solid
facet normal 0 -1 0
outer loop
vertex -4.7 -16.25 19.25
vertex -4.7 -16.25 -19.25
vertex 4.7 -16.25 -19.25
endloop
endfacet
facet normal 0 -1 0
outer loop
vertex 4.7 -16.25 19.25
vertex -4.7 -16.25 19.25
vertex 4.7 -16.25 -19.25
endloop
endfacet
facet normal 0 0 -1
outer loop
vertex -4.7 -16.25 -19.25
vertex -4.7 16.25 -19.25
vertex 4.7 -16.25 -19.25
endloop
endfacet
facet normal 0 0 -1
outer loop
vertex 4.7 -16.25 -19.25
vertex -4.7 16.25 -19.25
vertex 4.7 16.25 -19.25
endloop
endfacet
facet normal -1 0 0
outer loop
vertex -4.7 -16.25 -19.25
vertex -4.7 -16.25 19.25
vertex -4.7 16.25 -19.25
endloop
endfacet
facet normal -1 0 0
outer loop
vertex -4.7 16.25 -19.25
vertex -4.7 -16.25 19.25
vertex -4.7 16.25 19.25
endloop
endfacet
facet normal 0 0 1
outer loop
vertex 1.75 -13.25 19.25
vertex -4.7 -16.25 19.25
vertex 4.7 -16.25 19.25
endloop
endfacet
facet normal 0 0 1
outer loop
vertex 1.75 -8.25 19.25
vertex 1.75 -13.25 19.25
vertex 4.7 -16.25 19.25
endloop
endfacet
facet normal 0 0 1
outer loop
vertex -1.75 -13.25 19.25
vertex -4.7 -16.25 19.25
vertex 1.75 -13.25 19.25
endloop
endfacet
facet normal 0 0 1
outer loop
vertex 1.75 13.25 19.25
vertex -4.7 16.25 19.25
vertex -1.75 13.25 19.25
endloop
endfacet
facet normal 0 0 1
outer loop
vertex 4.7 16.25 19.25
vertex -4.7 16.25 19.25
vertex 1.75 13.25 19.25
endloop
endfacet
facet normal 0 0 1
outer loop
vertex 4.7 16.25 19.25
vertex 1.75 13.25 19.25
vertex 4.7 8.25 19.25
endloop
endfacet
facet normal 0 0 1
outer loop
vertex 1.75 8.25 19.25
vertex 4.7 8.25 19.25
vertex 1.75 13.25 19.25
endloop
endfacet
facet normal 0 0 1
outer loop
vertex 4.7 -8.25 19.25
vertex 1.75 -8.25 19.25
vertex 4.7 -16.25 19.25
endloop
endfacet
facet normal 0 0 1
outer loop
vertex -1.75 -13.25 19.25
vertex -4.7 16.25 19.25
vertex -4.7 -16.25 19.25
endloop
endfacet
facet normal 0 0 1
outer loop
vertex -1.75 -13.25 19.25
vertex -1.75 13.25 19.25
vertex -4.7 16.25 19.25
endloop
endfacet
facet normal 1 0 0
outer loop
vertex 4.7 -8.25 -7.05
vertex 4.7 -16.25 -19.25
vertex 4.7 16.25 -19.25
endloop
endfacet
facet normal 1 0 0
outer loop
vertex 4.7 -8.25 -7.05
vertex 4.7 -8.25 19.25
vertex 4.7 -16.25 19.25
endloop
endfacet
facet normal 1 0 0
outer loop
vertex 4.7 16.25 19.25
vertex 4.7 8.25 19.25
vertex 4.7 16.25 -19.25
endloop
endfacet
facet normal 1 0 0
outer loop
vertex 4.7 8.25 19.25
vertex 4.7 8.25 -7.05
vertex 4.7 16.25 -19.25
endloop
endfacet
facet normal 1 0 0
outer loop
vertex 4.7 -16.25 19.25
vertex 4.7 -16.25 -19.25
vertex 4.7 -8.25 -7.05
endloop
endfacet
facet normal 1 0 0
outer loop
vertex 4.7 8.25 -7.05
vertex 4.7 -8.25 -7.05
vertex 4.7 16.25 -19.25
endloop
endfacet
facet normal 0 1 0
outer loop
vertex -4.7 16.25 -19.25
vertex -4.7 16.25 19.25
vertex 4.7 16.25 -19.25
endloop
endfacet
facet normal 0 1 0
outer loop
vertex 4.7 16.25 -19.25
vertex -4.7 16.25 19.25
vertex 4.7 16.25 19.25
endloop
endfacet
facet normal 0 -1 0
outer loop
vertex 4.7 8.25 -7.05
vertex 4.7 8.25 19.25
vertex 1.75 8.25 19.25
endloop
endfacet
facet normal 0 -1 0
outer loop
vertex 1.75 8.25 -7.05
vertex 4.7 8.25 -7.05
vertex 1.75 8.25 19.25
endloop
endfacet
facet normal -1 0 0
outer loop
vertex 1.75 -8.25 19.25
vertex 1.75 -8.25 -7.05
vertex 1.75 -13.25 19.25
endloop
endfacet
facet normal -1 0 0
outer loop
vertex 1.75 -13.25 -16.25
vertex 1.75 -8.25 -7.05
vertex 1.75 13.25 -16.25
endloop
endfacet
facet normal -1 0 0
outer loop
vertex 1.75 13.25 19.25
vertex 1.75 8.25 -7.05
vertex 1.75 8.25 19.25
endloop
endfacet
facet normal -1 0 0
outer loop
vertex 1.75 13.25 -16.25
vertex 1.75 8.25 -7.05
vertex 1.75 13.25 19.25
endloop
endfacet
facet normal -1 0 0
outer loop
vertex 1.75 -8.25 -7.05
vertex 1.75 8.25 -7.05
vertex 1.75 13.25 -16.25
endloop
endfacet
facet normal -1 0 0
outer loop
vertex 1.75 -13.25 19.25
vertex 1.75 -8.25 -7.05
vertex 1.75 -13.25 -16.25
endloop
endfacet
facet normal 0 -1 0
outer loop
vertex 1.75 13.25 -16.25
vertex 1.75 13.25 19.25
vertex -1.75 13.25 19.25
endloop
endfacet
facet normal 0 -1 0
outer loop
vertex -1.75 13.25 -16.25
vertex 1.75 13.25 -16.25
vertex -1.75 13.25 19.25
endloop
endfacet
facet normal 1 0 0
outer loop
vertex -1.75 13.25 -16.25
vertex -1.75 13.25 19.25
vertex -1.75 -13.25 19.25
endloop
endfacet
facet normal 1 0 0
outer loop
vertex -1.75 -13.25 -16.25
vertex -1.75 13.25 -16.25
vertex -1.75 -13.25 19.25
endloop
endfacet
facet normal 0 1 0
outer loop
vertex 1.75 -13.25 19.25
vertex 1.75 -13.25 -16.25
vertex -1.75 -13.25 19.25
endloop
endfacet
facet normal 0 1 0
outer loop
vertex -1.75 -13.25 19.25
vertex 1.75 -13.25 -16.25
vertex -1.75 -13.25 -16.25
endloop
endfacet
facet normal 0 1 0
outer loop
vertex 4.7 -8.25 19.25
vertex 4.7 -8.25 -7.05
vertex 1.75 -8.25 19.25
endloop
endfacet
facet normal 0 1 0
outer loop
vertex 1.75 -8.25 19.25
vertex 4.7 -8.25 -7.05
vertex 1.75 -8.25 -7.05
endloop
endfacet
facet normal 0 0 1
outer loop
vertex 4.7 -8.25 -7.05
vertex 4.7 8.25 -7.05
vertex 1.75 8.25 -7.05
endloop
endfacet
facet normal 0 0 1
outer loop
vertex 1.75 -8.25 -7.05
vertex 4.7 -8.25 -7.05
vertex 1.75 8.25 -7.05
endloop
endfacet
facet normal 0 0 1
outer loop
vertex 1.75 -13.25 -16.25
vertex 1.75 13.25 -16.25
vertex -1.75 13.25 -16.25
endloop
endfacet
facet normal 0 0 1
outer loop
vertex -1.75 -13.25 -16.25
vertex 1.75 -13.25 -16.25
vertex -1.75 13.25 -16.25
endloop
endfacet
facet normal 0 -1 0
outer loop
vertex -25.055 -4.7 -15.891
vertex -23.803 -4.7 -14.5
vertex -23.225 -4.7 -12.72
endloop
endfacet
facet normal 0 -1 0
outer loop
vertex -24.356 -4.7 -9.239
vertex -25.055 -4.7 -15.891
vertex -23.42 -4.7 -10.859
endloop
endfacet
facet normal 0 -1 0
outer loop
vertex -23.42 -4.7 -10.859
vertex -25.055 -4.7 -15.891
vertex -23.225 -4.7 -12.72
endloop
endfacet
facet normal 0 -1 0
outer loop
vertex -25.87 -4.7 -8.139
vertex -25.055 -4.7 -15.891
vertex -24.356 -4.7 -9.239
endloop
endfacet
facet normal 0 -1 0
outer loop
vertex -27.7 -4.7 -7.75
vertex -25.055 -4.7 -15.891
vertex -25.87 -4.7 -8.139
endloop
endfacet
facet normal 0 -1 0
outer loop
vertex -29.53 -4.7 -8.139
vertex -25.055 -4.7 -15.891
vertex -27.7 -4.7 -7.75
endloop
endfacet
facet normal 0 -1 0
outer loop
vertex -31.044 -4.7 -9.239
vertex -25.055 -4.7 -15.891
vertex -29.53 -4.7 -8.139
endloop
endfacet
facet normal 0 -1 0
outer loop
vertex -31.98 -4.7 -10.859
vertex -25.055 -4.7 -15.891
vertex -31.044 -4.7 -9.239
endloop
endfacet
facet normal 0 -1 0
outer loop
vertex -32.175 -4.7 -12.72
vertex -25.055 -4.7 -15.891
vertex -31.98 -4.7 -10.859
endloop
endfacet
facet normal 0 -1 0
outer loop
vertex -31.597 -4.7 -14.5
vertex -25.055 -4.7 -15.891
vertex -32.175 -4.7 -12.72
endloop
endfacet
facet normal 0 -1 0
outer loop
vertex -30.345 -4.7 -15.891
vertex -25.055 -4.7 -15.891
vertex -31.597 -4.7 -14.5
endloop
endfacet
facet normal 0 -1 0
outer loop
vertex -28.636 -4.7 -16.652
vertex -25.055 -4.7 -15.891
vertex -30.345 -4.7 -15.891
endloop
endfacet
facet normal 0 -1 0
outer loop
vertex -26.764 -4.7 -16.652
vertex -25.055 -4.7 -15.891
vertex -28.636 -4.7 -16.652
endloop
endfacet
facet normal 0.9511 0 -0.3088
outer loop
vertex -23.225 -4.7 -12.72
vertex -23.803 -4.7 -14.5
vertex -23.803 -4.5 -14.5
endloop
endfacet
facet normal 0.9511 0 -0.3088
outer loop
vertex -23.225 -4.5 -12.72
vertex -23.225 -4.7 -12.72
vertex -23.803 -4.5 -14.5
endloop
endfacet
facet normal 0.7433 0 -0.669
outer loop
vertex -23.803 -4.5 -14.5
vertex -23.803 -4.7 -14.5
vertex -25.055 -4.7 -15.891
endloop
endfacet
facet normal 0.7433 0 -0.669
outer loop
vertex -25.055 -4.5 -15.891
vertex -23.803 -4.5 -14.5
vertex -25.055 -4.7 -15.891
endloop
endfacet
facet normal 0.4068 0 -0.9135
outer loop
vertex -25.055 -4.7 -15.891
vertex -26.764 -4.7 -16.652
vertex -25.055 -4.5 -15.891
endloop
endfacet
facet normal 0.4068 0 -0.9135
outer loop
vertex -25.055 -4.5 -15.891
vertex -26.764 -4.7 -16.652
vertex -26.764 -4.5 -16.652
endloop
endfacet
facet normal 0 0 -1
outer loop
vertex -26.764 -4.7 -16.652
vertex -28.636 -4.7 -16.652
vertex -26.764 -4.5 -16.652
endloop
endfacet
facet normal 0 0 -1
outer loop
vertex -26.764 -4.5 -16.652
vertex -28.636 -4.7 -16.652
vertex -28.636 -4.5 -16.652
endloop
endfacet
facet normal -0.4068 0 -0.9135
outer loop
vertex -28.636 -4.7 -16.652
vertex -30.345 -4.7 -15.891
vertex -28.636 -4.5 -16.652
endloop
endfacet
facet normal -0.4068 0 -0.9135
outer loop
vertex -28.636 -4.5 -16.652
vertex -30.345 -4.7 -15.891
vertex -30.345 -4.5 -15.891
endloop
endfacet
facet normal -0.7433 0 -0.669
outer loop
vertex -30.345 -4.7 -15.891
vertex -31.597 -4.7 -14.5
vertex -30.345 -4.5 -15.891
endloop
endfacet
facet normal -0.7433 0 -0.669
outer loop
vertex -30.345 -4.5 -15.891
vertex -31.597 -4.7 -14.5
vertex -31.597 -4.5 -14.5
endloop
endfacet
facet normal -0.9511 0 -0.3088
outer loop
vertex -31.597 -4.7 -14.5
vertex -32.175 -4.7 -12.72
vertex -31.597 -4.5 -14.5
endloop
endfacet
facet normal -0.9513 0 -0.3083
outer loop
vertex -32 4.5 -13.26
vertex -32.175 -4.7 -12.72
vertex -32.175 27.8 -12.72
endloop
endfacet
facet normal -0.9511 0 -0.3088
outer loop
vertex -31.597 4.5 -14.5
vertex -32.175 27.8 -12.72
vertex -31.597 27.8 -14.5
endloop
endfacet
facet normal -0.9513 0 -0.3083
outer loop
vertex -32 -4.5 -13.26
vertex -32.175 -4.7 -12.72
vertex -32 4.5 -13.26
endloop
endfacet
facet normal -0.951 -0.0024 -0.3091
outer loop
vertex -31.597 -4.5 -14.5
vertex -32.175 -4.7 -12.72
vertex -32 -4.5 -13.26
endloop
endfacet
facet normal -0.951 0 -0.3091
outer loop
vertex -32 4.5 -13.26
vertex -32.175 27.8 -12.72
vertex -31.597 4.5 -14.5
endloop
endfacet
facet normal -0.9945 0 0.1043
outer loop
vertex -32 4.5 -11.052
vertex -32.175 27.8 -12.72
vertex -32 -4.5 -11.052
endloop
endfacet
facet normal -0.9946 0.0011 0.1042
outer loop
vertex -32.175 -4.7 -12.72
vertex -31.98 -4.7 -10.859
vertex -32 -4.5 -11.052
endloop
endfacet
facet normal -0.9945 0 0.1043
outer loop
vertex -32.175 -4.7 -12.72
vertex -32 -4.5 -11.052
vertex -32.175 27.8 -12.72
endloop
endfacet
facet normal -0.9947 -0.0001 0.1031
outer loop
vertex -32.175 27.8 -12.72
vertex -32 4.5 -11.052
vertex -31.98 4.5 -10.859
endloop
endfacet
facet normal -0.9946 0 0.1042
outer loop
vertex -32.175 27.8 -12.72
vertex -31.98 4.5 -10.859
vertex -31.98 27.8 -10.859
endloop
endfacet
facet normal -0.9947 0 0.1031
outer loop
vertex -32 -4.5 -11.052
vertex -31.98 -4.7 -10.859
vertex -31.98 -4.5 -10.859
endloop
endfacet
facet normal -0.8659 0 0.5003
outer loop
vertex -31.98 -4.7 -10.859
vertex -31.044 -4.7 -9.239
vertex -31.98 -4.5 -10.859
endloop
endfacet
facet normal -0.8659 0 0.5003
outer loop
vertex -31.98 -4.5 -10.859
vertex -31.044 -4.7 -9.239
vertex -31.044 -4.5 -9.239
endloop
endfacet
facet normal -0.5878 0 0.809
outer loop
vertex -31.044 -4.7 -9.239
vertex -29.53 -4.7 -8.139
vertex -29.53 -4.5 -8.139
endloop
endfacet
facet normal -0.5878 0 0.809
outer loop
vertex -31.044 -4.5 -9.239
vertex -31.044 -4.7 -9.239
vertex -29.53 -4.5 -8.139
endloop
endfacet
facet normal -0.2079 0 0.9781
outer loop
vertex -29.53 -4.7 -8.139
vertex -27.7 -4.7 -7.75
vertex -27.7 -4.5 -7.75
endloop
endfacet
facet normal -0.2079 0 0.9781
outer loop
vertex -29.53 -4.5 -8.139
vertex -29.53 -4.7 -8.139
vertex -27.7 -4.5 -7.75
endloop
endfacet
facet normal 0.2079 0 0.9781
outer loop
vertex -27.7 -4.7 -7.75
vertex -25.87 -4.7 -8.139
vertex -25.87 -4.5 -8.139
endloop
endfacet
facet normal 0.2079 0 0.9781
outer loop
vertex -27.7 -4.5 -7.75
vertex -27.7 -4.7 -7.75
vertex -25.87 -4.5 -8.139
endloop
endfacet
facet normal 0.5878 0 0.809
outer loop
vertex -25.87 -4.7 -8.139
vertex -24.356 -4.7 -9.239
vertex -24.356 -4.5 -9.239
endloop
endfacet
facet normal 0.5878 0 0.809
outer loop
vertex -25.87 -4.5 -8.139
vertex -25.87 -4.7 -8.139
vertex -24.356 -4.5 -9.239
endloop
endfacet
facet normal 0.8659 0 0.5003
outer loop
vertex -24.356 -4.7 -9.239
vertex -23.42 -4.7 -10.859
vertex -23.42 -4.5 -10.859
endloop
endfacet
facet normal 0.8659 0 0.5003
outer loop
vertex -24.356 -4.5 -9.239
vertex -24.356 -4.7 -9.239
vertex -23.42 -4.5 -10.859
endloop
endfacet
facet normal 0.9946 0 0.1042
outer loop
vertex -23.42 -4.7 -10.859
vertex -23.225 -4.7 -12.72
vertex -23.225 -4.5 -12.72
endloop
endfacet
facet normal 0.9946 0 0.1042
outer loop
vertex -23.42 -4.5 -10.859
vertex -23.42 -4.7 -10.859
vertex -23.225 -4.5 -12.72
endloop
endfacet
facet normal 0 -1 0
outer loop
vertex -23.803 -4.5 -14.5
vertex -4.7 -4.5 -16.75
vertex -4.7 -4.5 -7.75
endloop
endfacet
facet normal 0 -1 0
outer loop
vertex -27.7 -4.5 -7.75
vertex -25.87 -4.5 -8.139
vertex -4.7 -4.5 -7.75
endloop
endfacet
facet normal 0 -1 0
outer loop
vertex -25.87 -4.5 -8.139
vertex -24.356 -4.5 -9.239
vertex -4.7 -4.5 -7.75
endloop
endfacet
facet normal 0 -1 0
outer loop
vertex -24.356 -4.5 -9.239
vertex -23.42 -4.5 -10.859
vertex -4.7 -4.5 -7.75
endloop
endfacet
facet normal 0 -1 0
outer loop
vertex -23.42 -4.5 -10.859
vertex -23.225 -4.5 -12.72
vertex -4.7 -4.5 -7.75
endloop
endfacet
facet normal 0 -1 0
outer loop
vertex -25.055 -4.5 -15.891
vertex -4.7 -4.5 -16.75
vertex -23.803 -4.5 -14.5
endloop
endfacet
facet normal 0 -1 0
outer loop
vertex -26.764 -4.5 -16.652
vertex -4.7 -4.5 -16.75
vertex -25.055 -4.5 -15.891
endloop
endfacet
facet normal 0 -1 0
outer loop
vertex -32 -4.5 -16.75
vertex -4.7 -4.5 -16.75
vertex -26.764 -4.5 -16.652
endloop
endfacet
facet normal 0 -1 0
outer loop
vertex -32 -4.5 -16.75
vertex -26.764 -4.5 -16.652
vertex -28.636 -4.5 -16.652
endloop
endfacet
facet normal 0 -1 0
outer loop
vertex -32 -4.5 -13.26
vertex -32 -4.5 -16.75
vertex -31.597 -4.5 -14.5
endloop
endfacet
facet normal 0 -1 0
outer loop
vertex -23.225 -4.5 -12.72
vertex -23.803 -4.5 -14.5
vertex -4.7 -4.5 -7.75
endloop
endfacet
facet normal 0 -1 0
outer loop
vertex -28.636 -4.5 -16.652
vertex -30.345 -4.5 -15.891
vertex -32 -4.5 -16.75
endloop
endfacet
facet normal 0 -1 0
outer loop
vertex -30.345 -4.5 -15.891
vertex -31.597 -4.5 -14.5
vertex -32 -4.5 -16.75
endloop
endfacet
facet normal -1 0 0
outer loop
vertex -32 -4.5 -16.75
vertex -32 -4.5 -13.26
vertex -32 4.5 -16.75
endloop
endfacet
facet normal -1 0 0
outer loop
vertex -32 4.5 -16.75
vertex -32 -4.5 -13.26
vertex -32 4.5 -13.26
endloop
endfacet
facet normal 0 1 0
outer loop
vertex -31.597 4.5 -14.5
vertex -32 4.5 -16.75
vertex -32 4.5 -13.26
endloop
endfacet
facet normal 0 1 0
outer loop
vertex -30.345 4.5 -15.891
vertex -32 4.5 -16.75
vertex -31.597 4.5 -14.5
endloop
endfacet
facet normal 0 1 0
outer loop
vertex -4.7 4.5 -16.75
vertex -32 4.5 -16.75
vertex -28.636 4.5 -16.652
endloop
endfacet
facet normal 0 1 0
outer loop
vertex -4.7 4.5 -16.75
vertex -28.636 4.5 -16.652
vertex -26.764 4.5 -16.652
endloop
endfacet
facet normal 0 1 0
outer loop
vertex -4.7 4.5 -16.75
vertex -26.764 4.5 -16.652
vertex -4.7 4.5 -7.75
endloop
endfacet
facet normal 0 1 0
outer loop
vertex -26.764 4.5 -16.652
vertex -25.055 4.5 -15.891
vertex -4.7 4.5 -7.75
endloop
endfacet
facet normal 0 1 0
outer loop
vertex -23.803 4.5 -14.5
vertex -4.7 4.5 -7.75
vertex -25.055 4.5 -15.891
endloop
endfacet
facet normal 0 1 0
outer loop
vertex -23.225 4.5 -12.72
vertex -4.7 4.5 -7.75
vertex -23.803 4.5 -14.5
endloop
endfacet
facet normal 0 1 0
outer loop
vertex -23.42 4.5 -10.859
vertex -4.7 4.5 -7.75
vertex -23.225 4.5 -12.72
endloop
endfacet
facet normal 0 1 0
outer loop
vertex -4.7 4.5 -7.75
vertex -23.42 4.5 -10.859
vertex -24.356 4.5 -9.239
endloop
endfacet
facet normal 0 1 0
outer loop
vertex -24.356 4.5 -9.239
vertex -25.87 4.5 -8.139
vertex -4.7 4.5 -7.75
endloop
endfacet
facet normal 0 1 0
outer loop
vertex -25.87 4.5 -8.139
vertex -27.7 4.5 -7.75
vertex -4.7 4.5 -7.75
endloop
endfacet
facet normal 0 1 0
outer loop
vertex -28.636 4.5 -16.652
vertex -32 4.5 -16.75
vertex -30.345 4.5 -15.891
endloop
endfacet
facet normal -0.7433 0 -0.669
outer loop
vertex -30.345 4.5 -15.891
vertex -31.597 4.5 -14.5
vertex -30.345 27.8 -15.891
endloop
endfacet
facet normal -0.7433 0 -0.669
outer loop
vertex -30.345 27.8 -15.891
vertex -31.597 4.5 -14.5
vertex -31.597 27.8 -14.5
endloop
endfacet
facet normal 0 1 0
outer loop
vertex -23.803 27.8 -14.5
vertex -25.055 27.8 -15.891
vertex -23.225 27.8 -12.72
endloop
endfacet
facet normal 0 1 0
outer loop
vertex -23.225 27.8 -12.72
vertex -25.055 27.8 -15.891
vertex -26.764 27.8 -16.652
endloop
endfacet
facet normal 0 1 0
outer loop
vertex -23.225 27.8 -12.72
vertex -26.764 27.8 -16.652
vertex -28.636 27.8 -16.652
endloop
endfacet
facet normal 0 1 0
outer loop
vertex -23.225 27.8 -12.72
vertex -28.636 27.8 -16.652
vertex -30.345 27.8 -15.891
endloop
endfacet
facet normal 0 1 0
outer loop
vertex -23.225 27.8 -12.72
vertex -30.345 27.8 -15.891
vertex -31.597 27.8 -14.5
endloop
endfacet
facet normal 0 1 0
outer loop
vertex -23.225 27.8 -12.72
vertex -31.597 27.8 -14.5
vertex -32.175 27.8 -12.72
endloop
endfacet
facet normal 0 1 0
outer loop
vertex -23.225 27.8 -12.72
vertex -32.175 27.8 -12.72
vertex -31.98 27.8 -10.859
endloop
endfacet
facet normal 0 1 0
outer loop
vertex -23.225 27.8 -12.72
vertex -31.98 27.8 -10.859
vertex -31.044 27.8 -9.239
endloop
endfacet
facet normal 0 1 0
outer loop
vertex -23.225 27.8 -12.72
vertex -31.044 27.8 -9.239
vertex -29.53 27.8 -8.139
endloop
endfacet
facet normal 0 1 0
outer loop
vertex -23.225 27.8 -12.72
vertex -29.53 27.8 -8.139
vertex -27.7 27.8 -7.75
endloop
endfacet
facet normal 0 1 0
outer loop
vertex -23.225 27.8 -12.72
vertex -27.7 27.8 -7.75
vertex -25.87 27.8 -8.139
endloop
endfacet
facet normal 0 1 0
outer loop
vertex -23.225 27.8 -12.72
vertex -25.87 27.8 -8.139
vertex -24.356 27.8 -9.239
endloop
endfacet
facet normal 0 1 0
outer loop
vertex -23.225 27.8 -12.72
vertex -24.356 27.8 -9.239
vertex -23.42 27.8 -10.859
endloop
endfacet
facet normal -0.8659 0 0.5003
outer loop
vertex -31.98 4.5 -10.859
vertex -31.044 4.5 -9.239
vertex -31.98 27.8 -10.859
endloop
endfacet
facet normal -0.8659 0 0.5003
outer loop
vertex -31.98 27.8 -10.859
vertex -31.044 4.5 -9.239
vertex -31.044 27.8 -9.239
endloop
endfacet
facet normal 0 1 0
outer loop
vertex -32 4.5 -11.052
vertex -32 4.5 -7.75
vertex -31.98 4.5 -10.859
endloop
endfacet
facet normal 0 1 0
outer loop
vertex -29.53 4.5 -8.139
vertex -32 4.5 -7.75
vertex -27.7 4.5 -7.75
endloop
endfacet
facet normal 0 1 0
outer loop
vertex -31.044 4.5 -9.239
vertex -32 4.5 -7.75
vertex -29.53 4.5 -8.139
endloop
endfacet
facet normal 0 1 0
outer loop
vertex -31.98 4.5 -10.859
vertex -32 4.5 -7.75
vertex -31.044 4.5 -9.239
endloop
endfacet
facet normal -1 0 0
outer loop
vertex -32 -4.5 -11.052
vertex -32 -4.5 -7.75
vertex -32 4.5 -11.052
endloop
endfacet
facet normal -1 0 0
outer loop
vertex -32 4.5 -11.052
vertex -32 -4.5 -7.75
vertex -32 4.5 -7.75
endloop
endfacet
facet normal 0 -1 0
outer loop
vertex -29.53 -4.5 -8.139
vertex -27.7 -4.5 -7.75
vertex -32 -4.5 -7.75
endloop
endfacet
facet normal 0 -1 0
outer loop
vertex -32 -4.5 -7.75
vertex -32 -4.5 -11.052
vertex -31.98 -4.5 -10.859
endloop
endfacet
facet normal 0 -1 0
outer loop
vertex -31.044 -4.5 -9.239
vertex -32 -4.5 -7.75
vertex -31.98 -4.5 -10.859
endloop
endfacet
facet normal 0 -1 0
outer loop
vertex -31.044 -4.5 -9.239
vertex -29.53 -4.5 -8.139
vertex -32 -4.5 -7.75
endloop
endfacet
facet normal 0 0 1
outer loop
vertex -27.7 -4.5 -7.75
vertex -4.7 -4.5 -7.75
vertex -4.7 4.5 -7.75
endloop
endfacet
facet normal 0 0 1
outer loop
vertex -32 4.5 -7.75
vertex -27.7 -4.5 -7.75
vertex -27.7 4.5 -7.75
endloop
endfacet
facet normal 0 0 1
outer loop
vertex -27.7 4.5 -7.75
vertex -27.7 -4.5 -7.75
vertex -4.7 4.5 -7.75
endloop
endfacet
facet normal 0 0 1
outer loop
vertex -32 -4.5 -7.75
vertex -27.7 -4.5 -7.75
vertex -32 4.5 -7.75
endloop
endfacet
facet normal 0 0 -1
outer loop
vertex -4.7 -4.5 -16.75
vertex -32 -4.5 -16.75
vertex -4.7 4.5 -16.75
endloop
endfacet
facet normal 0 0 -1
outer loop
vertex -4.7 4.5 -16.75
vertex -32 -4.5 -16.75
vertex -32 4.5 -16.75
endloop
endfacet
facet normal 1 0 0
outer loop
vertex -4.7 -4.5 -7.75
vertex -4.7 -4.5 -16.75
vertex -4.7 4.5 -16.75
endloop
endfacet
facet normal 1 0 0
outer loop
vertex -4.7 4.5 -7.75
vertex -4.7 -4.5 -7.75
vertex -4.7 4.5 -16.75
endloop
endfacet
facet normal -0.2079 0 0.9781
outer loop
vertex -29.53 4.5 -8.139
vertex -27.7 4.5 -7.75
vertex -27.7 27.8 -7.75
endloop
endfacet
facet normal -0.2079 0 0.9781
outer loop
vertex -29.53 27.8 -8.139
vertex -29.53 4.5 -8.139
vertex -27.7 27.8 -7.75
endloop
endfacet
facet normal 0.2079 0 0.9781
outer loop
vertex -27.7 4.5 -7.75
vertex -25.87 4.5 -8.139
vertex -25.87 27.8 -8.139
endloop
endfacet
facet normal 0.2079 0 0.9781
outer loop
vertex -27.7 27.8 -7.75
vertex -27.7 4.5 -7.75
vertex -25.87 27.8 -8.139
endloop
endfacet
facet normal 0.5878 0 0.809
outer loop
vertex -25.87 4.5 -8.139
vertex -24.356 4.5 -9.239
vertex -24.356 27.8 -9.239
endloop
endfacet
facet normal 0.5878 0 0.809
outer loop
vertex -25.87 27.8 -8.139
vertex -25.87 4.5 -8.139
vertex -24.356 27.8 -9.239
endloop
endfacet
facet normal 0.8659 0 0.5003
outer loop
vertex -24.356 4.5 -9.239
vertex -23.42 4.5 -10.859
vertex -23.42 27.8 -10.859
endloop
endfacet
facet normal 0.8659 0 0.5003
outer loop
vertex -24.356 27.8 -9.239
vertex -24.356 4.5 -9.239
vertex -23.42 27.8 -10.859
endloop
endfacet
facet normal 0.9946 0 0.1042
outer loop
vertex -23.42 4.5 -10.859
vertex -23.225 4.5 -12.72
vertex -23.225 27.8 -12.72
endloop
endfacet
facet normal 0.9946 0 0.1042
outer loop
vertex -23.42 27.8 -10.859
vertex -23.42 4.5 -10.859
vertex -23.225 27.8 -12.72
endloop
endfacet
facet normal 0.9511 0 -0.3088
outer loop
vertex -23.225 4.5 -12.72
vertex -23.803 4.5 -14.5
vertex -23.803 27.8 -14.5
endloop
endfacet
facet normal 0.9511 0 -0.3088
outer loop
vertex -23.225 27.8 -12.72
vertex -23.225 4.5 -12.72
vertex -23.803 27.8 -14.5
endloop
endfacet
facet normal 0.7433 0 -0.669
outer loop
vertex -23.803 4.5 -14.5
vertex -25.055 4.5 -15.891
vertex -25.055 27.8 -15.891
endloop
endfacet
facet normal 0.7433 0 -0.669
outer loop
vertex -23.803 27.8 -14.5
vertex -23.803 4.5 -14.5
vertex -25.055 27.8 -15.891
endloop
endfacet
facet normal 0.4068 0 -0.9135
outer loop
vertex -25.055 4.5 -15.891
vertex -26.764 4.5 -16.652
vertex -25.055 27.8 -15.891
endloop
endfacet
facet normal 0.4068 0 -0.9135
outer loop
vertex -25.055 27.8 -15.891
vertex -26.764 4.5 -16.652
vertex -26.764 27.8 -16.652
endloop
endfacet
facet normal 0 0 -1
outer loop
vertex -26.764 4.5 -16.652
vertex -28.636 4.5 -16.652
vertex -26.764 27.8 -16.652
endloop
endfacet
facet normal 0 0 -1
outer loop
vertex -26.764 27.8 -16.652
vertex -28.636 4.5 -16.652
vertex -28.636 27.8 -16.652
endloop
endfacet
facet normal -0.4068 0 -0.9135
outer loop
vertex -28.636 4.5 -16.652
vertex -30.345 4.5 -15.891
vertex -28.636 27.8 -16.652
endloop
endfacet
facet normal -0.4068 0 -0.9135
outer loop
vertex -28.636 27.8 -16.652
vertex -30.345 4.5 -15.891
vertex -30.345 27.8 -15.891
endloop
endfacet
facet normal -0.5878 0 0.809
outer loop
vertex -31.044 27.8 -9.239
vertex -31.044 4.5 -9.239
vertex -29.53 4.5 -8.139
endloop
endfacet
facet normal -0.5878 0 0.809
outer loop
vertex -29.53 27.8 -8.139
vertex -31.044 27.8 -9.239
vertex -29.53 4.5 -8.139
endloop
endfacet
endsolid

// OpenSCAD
/*
 *  OpenSCAD toilet-seat-holder-left.scad
 *  Copyright (C) 2013 Mogue Carpenter
 *
 *  License: LGPL 2.1 or later
 *
 *  A simple holder to hold a toilet seat
 *  onto a bow.
*/

rotate([90,0,90])
seat_hook();

module seat_hook(){
	base();
	rotate([180,0,90])
		translate([-(32.5/2)+(13-9),0,(9.4/2)+((36.7-9.4)/2)])
			hook();
}

module hook(){
	cube([9,9,36.7-9.4],center = true);
	translate([0,(32.5-9.4)/2,(36.7/2)-(9) ] )
		rotate ([90,0,0])
			cylinder(h = 32.5, r = 9/2,center = true);

}

module base(){
	difference () {
		cube (size=[32.5,38.5,9.4], center=true);
		translate([0,3,0])
			cube (size=[1+32.5-7,38.5,3.5],center=true);
		translate([0,8.2,5])
			cube (size=[32.5-(8*2),38.5-(8),10],center=true);
	};
};
